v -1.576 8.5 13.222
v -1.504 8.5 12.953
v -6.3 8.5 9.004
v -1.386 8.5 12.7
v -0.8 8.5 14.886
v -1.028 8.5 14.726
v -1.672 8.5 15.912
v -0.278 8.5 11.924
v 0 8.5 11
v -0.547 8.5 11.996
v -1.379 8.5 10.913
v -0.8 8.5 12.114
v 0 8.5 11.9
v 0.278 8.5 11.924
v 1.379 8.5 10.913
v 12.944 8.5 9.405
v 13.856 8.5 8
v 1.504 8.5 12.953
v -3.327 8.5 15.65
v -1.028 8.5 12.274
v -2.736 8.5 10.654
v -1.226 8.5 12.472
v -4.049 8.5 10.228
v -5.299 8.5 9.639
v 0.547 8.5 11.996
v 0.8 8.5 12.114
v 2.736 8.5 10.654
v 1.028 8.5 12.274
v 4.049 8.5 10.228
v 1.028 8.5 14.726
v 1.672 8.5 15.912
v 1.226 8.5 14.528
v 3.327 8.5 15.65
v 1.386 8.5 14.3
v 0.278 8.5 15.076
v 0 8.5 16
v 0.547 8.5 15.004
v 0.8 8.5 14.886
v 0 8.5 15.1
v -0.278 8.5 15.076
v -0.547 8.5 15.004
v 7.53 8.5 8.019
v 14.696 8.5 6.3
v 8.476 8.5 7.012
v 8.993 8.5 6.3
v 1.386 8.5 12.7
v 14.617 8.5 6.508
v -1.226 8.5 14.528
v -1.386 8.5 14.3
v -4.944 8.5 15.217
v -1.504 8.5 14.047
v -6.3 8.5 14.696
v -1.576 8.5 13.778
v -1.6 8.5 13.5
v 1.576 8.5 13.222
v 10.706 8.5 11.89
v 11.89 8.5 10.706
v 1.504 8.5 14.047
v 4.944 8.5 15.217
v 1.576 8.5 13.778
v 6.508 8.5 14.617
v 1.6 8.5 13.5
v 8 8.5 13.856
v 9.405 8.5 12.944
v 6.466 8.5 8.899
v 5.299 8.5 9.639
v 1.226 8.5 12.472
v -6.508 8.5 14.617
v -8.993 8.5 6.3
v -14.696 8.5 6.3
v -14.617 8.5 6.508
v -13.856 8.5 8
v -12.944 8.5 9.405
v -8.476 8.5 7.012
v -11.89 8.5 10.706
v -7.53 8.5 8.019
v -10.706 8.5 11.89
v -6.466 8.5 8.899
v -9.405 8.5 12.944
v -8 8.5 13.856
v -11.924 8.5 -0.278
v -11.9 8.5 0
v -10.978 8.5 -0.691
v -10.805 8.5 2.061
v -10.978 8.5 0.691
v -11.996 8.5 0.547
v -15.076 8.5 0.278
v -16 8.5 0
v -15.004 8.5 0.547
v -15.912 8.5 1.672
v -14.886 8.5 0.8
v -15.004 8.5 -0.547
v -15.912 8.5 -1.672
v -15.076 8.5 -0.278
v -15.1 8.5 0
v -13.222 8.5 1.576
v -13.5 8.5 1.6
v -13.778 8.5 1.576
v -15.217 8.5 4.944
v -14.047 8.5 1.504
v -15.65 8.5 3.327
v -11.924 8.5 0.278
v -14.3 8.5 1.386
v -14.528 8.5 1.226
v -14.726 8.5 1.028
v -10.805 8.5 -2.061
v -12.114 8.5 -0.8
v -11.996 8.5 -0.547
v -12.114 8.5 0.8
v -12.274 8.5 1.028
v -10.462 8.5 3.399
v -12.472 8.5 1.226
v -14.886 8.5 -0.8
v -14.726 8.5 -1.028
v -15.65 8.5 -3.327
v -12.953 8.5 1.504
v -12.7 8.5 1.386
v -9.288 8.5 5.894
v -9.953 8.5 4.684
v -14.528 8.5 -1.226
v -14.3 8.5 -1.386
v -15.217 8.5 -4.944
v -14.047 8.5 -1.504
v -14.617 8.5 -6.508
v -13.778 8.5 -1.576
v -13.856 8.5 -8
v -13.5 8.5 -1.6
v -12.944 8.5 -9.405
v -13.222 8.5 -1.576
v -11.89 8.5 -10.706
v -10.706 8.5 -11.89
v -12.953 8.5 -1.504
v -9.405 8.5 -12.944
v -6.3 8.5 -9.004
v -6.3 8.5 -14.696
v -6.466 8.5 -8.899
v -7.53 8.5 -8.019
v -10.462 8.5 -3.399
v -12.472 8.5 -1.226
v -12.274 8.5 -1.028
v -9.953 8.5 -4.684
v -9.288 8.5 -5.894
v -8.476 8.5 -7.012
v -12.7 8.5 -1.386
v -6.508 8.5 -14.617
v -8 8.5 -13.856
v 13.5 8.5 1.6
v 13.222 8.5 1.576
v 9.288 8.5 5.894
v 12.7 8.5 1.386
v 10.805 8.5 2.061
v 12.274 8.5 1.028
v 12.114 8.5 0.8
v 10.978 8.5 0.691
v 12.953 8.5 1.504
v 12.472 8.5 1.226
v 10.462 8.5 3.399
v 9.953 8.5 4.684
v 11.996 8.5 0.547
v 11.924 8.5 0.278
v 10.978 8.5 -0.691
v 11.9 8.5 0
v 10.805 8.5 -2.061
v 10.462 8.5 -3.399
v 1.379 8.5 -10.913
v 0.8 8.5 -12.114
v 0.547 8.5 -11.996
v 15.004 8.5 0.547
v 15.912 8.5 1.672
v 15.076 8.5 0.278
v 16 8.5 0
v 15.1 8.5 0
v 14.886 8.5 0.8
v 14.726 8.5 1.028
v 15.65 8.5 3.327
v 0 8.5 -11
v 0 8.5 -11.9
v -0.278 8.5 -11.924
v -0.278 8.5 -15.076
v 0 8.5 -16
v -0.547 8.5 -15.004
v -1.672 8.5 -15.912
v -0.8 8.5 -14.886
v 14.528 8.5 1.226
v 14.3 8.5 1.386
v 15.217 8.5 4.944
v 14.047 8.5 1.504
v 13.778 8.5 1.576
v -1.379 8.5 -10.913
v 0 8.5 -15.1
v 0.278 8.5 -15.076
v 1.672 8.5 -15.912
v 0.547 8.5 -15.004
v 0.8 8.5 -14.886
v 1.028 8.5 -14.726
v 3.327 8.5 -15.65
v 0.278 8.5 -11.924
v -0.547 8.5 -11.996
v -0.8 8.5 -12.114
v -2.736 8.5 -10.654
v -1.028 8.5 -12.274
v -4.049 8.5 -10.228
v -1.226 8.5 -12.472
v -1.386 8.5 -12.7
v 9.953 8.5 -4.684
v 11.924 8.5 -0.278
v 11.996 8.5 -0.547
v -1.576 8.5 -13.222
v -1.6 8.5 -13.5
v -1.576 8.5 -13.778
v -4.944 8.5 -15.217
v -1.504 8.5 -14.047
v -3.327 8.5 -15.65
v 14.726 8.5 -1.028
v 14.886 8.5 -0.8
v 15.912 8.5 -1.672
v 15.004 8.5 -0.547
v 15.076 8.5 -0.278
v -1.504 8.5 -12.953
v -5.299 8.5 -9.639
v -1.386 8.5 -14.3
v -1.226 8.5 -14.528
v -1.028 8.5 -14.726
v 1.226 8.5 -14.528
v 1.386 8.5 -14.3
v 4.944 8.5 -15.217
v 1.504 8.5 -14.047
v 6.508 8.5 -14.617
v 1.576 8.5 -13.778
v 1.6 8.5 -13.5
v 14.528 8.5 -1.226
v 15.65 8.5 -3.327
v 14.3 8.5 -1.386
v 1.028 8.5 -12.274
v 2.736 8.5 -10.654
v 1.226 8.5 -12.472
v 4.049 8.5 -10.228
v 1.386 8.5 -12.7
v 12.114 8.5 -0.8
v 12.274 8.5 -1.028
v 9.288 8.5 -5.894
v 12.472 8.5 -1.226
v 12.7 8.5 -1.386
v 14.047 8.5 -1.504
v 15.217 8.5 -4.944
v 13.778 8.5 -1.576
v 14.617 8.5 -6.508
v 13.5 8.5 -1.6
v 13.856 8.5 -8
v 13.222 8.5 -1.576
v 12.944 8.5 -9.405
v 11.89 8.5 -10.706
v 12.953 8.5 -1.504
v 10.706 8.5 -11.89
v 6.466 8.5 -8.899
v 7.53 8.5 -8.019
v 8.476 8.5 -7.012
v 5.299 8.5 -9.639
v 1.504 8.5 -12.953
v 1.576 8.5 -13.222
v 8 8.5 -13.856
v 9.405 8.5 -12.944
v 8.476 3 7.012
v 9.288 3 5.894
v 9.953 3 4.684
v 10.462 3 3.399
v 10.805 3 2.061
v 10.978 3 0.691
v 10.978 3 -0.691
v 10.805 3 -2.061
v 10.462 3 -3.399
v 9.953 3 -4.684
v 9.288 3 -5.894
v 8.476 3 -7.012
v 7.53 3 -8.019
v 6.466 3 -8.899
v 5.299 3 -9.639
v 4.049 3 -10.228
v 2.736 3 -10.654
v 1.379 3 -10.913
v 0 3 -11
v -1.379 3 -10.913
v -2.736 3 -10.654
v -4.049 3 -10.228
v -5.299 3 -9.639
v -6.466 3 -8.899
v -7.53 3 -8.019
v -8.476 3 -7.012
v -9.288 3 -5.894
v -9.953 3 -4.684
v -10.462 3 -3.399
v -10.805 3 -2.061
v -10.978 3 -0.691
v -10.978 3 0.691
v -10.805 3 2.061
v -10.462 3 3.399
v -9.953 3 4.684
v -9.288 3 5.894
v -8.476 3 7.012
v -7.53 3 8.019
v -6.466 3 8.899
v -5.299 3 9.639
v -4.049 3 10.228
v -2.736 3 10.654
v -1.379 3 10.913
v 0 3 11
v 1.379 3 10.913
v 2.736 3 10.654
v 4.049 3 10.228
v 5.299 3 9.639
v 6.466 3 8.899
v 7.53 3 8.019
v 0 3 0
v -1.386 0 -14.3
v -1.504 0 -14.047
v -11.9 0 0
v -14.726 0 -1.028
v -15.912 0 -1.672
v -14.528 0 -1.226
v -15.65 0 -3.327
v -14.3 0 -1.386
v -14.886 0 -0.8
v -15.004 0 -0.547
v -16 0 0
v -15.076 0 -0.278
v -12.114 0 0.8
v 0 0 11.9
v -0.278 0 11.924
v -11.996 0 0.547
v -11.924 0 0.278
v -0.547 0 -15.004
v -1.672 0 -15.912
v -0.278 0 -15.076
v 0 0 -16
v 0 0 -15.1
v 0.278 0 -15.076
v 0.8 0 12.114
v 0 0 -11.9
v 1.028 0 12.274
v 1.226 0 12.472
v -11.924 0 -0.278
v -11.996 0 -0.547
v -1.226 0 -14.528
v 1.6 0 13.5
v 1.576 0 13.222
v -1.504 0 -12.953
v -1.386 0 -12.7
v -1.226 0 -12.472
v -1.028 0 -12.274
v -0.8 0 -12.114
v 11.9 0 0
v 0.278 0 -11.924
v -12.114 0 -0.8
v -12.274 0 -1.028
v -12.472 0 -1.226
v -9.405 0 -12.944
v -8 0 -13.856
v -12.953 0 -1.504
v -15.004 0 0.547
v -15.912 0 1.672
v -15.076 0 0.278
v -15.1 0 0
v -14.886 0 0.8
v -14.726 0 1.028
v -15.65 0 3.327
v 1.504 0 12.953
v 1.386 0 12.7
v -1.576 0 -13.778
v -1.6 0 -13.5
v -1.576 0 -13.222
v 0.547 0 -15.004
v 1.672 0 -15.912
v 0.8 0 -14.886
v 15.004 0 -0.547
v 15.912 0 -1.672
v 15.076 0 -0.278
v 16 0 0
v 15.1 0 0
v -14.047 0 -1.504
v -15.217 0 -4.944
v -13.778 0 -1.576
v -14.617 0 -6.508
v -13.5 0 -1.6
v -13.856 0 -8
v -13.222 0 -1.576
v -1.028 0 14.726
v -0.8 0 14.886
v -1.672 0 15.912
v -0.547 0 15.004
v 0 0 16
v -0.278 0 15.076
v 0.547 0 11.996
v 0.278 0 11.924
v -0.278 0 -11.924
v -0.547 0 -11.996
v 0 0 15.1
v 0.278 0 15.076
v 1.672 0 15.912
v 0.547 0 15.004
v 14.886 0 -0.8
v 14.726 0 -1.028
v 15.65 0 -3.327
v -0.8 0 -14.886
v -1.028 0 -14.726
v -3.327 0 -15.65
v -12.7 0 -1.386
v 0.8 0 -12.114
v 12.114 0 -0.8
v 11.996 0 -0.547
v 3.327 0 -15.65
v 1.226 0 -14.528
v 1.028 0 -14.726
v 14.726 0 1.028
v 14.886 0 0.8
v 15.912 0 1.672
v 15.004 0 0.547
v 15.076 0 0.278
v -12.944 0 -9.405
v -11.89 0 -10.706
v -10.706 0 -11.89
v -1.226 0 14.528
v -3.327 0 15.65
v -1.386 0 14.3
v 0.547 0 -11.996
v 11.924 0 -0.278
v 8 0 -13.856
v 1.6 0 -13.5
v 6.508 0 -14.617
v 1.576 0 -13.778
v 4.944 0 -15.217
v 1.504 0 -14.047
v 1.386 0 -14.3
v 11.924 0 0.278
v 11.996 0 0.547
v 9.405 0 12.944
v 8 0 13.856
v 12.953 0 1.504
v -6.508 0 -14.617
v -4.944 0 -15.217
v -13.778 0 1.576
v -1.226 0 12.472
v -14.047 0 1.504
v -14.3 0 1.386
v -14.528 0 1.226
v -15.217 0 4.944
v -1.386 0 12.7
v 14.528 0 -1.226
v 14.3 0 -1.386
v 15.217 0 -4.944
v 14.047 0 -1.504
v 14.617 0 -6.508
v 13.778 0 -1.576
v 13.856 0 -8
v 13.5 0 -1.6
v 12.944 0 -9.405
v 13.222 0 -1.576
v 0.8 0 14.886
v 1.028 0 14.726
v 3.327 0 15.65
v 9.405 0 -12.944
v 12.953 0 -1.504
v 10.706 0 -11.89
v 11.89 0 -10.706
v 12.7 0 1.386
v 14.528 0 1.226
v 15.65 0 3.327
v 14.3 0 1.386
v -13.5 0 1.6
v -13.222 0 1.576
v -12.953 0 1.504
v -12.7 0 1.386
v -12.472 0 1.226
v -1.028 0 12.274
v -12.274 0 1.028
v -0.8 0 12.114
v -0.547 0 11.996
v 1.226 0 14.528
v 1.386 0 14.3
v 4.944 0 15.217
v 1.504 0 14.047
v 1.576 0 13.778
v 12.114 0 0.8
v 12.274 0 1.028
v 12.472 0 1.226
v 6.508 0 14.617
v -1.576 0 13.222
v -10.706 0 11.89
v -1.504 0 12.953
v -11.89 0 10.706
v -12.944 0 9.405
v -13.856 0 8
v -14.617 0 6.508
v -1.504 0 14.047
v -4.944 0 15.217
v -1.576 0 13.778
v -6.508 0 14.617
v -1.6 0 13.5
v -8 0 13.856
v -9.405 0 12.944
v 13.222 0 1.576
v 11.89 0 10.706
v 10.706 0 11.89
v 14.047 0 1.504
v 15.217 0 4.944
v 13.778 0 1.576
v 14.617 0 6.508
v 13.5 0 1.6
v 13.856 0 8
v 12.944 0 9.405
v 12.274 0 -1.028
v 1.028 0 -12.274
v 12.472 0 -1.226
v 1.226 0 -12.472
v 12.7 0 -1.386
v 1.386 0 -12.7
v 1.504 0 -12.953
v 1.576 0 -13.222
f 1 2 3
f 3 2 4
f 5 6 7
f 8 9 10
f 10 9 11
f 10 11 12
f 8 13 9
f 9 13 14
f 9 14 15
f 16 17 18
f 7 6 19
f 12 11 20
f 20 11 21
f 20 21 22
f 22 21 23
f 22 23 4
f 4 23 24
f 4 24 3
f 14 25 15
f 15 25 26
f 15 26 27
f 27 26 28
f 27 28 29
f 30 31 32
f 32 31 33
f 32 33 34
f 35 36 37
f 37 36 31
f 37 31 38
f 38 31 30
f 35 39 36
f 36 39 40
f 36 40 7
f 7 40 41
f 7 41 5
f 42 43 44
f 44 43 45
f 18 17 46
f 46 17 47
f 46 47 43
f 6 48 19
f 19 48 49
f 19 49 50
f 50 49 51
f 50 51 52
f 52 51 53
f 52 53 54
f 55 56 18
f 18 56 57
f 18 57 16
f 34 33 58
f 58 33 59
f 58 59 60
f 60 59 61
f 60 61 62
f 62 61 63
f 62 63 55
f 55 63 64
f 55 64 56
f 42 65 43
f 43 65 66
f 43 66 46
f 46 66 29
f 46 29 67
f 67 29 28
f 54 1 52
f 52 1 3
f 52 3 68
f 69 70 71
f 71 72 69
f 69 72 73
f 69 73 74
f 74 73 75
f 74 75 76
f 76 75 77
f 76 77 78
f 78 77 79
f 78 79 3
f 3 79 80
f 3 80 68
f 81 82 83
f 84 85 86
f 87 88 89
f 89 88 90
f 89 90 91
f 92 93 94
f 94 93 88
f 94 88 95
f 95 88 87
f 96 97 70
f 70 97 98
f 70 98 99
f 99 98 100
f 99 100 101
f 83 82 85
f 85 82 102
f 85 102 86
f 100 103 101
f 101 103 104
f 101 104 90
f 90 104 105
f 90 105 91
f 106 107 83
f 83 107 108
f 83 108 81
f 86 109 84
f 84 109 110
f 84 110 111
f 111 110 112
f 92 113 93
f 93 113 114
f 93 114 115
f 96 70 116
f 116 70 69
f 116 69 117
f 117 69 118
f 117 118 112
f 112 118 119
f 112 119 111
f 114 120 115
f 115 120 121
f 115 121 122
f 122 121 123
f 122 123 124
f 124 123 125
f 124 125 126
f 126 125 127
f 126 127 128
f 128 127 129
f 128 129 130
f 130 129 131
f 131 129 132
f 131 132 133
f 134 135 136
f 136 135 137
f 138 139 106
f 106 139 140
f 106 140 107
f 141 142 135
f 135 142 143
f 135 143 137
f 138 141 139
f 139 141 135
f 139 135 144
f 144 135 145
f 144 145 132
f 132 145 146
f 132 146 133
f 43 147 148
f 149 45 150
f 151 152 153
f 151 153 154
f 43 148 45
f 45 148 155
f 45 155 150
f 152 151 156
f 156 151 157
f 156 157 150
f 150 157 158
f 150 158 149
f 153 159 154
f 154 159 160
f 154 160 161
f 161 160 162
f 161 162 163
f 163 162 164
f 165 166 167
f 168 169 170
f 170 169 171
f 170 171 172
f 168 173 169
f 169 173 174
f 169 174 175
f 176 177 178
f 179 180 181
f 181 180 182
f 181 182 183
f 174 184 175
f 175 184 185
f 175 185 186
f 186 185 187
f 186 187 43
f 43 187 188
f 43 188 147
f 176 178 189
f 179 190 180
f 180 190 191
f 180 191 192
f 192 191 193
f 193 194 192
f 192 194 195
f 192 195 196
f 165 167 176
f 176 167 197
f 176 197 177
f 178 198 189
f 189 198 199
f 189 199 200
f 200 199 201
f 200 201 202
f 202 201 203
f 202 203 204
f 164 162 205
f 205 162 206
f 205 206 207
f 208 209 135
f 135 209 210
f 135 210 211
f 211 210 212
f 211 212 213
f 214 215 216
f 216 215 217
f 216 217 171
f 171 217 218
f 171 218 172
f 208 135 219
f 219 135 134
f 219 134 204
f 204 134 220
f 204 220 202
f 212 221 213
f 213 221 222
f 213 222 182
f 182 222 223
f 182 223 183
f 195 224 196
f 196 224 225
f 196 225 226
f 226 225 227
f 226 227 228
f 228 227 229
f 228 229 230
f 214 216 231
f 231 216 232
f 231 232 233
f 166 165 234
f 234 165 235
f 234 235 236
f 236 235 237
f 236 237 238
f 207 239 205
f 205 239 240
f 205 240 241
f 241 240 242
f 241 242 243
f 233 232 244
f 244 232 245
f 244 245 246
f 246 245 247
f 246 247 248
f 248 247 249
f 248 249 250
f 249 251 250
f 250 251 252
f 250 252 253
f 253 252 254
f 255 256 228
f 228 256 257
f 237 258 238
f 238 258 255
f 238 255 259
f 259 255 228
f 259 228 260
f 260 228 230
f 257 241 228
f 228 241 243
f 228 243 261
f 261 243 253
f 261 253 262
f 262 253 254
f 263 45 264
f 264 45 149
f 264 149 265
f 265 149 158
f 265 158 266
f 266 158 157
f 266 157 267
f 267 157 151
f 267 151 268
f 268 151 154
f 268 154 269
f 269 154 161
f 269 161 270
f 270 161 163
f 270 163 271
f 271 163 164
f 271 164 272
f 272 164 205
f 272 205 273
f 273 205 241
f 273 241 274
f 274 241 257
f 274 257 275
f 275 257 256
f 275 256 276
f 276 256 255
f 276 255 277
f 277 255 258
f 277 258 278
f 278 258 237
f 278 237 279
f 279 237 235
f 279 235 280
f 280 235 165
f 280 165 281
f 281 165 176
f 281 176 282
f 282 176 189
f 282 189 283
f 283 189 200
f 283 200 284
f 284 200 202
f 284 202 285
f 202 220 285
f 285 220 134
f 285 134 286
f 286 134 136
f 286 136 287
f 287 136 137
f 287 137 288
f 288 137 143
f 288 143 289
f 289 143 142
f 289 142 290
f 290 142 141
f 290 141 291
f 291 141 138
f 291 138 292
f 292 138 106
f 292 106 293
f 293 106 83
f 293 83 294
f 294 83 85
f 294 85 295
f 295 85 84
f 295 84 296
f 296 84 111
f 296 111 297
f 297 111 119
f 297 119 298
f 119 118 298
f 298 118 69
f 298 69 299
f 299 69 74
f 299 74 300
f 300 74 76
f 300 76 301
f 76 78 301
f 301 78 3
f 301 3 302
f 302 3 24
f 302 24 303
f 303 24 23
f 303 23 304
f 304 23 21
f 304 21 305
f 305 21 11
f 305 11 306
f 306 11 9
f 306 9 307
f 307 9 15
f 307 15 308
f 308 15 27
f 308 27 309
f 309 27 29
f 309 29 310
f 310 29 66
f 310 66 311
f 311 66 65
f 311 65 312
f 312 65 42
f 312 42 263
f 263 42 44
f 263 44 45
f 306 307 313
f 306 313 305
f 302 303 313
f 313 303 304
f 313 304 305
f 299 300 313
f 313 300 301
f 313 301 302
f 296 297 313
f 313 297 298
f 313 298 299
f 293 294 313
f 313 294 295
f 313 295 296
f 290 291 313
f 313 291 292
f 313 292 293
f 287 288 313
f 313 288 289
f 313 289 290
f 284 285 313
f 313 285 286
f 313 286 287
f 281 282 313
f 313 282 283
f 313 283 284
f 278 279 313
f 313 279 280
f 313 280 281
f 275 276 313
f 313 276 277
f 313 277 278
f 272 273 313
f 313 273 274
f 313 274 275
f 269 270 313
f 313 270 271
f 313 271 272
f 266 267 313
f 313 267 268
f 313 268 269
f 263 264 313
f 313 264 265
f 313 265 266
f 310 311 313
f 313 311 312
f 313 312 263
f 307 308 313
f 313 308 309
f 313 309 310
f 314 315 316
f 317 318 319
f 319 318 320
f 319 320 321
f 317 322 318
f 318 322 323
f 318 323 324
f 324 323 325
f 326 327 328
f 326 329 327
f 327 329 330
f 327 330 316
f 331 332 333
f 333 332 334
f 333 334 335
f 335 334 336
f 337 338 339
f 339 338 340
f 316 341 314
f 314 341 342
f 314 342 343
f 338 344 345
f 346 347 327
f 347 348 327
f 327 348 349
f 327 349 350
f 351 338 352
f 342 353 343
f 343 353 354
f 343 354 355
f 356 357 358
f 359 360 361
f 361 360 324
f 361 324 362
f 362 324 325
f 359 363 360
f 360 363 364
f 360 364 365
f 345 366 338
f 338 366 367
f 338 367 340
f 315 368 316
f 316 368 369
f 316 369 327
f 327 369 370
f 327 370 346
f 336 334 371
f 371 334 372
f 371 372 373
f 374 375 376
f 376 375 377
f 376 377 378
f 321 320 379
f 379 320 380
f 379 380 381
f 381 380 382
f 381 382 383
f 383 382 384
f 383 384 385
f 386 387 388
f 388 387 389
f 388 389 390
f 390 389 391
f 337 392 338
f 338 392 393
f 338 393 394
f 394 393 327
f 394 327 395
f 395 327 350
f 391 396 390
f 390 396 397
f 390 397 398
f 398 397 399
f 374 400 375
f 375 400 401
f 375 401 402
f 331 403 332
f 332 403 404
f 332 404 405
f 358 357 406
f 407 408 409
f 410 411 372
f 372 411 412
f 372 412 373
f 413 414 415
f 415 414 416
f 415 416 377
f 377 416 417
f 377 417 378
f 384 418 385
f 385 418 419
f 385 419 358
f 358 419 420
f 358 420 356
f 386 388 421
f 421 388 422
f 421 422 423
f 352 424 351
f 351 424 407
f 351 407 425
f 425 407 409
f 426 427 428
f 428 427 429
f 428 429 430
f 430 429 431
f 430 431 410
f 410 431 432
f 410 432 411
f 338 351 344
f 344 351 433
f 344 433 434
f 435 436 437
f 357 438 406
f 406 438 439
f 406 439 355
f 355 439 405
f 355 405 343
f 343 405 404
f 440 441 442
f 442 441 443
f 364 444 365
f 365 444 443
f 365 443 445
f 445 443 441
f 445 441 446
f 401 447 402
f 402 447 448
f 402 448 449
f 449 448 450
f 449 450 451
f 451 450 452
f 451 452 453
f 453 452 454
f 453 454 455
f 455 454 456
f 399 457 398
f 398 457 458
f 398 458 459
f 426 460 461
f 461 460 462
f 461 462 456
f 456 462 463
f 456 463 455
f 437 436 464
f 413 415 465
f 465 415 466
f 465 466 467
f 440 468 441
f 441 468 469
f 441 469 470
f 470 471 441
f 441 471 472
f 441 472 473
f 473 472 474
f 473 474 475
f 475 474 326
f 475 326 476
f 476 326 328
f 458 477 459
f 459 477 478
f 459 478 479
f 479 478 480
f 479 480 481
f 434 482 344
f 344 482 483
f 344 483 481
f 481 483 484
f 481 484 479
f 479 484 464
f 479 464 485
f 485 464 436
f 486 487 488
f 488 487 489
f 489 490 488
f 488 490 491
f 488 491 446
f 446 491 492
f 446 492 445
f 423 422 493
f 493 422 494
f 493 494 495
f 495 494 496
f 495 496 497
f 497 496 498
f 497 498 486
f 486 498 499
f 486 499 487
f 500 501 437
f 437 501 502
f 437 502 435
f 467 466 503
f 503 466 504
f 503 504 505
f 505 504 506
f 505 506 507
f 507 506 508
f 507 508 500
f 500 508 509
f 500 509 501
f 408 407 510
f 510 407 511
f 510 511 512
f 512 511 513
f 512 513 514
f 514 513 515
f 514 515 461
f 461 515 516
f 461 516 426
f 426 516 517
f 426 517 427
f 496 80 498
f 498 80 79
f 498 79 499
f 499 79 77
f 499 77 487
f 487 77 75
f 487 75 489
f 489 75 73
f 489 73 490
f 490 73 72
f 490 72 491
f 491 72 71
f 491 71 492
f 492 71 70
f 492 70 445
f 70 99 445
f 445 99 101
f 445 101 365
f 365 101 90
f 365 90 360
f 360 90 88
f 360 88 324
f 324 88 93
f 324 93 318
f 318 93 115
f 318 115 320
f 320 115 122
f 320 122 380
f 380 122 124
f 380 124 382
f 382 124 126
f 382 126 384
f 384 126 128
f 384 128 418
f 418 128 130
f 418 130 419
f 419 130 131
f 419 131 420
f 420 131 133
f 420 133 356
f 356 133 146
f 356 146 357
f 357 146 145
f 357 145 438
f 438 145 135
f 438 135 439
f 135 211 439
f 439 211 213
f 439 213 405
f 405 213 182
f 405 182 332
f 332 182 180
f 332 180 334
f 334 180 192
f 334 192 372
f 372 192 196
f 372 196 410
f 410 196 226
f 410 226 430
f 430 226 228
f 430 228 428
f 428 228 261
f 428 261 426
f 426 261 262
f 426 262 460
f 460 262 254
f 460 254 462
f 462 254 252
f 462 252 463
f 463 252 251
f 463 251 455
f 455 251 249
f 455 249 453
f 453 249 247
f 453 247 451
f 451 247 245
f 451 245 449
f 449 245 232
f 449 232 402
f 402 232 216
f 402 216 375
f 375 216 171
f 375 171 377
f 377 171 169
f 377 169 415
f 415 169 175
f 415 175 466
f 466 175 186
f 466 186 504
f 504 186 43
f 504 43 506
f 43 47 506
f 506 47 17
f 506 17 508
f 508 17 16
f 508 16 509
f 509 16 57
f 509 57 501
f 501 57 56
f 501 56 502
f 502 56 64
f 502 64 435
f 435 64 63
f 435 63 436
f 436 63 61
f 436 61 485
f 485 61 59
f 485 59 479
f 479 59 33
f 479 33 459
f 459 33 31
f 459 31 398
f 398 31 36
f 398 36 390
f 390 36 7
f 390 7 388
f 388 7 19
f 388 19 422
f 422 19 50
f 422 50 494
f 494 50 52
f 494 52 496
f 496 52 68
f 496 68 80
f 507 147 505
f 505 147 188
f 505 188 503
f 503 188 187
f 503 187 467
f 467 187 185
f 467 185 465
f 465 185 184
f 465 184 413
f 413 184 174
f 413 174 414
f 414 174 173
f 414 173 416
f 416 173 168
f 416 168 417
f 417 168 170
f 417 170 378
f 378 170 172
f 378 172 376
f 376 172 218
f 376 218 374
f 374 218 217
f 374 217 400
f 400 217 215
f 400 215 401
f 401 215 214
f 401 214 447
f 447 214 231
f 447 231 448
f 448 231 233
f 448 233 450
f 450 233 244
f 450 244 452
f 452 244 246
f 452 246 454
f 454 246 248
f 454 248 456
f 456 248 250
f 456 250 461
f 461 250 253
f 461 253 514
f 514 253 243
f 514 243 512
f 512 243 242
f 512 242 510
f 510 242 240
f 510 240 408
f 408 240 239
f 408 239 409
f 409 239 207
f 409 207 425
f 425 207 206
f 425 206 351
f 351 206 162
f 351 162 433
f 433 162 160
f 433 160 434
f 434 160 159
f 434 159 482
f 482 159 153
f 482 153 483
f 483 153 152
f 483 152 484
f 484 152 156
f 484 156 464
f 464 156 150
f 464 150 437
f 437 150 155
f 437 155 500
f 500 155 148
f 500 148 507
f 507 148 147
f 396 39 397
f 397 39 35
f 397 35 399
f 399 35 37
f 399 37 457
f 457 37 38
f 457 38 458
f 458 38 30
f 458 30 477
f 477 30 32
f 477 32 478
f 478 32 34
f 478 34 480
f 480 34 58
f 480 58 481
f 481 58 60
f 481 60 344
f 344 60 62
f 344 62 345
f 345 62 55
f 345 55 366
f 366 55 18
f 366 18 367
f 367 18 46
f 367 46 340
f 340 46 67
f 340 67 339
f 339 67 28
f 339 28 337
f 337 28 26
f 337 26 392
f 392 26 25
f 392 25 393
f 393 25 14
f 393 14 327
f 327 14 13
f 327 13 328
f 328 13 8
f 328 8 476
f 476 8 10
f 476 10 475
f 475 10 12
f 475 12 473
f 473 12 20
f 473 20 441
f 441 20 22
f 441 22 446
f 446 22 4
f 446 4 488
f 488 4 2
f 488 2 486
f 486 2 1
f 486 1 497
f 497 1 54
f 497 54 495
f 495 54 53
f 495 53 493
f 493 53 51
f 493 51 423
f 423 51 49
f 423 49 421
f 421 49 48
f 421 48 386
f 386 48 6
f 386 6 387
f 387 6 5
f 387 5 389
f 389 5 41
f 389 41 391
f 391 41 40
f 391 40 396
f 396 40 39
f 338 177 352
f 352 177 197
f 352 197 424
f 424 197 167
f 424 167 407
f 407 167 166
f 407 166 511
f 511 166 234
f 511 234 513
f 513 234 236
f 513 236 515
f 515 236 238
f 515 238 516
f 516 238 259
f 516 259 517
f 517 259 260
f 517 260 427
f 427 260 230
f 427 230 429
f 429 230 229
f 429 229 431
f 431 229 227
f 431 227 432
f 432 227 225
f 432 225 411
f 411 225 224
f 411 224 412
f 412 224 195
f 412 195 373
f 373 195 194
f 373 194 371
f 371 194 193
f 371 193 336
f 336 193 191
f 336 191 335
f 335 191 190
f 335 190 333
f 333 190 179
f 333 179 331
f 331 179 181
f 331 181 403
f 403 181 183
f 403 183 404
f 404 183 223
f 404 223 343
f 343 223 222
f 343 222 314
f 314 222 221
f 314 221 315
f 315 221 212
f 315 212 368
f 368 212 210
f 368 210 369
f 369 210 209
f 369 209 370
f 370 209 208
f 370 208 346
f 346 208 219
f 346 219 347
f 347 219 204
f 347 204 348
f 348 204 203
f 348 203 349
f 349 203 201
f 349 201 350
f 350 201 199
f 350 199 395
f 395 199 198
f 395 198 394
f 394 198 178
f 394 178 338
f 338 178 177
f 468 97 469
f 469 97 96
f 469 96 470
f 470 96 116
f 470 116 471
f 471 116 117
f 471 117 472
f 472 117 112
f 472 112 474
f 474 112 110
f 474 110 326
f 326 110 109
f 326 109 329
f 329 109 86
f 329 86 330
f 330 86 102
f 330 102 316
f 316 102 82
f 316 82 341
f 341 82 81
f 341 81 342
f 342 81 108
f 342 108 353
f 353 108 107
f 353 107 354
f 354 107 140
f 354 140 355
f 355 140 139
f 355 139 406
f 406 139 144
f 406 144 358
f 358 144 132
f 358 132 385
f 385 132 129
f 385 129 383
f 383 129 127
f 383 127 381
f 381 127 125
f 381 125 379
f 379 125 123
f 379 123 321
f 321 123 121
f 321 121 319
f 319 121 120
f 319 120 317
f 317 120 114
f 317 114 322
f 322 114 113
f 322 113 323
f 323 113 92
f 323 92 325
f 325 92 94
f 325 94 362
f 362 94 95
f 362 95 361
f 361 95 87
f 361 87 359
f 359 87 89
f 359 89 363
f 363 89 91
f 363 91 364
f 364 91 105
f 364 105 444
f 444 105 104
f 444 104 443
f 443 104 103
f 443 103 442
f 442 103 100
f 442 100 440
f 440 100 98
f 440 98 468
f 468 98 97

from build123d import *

# Parameters (mm, degrees)
ESQUISSE2_R                = 1.6
FIXINGHOLE_DEPTH           = 9.5
FIXINGHOLEREPETITION_COUNT = 4


with BuildPart() as part:
    # Esquisse1 → MainRevolution (revolve)
    with BuildSketch(Plane.XY):
        Polygon((11, 8.5), (11, 3), (0, 3), (0, 0), (16, 0), (16, 8.5), align=None)
    revolve(axis=Axis((0, 8.4, 0), (0, -1, 0)))

    # Esquisse2 → FixingHole (cut, through all)
    with BuildSketch(Plane(origin=(0, 8.5, 0), x_dir=(1, 0, 0), z_dir=(0, 1, 0))):
        with Locations((13.5, 0)):
            Circle(ESQUISSE2_R)
    fixinghole = extrude(amount=-FIXINGHOLE_DEPTH, mode=Mode.SUBTRACT)

    # FixingHoleRepetition: FixingHole ×4 about axis
    fixingholerepetition_axis = Axis((0, 0, 0), (0, 1, 0))
    for i in range(1, FIXINGHOLEREPETITION_COUNT):
        add(fixinghole.rotate(fixingholerepetition_axis, i * 360 / FIXINGHOLEREPETITION_COUNT), mode=Mode.SUBTRACT)


solid = part.part
